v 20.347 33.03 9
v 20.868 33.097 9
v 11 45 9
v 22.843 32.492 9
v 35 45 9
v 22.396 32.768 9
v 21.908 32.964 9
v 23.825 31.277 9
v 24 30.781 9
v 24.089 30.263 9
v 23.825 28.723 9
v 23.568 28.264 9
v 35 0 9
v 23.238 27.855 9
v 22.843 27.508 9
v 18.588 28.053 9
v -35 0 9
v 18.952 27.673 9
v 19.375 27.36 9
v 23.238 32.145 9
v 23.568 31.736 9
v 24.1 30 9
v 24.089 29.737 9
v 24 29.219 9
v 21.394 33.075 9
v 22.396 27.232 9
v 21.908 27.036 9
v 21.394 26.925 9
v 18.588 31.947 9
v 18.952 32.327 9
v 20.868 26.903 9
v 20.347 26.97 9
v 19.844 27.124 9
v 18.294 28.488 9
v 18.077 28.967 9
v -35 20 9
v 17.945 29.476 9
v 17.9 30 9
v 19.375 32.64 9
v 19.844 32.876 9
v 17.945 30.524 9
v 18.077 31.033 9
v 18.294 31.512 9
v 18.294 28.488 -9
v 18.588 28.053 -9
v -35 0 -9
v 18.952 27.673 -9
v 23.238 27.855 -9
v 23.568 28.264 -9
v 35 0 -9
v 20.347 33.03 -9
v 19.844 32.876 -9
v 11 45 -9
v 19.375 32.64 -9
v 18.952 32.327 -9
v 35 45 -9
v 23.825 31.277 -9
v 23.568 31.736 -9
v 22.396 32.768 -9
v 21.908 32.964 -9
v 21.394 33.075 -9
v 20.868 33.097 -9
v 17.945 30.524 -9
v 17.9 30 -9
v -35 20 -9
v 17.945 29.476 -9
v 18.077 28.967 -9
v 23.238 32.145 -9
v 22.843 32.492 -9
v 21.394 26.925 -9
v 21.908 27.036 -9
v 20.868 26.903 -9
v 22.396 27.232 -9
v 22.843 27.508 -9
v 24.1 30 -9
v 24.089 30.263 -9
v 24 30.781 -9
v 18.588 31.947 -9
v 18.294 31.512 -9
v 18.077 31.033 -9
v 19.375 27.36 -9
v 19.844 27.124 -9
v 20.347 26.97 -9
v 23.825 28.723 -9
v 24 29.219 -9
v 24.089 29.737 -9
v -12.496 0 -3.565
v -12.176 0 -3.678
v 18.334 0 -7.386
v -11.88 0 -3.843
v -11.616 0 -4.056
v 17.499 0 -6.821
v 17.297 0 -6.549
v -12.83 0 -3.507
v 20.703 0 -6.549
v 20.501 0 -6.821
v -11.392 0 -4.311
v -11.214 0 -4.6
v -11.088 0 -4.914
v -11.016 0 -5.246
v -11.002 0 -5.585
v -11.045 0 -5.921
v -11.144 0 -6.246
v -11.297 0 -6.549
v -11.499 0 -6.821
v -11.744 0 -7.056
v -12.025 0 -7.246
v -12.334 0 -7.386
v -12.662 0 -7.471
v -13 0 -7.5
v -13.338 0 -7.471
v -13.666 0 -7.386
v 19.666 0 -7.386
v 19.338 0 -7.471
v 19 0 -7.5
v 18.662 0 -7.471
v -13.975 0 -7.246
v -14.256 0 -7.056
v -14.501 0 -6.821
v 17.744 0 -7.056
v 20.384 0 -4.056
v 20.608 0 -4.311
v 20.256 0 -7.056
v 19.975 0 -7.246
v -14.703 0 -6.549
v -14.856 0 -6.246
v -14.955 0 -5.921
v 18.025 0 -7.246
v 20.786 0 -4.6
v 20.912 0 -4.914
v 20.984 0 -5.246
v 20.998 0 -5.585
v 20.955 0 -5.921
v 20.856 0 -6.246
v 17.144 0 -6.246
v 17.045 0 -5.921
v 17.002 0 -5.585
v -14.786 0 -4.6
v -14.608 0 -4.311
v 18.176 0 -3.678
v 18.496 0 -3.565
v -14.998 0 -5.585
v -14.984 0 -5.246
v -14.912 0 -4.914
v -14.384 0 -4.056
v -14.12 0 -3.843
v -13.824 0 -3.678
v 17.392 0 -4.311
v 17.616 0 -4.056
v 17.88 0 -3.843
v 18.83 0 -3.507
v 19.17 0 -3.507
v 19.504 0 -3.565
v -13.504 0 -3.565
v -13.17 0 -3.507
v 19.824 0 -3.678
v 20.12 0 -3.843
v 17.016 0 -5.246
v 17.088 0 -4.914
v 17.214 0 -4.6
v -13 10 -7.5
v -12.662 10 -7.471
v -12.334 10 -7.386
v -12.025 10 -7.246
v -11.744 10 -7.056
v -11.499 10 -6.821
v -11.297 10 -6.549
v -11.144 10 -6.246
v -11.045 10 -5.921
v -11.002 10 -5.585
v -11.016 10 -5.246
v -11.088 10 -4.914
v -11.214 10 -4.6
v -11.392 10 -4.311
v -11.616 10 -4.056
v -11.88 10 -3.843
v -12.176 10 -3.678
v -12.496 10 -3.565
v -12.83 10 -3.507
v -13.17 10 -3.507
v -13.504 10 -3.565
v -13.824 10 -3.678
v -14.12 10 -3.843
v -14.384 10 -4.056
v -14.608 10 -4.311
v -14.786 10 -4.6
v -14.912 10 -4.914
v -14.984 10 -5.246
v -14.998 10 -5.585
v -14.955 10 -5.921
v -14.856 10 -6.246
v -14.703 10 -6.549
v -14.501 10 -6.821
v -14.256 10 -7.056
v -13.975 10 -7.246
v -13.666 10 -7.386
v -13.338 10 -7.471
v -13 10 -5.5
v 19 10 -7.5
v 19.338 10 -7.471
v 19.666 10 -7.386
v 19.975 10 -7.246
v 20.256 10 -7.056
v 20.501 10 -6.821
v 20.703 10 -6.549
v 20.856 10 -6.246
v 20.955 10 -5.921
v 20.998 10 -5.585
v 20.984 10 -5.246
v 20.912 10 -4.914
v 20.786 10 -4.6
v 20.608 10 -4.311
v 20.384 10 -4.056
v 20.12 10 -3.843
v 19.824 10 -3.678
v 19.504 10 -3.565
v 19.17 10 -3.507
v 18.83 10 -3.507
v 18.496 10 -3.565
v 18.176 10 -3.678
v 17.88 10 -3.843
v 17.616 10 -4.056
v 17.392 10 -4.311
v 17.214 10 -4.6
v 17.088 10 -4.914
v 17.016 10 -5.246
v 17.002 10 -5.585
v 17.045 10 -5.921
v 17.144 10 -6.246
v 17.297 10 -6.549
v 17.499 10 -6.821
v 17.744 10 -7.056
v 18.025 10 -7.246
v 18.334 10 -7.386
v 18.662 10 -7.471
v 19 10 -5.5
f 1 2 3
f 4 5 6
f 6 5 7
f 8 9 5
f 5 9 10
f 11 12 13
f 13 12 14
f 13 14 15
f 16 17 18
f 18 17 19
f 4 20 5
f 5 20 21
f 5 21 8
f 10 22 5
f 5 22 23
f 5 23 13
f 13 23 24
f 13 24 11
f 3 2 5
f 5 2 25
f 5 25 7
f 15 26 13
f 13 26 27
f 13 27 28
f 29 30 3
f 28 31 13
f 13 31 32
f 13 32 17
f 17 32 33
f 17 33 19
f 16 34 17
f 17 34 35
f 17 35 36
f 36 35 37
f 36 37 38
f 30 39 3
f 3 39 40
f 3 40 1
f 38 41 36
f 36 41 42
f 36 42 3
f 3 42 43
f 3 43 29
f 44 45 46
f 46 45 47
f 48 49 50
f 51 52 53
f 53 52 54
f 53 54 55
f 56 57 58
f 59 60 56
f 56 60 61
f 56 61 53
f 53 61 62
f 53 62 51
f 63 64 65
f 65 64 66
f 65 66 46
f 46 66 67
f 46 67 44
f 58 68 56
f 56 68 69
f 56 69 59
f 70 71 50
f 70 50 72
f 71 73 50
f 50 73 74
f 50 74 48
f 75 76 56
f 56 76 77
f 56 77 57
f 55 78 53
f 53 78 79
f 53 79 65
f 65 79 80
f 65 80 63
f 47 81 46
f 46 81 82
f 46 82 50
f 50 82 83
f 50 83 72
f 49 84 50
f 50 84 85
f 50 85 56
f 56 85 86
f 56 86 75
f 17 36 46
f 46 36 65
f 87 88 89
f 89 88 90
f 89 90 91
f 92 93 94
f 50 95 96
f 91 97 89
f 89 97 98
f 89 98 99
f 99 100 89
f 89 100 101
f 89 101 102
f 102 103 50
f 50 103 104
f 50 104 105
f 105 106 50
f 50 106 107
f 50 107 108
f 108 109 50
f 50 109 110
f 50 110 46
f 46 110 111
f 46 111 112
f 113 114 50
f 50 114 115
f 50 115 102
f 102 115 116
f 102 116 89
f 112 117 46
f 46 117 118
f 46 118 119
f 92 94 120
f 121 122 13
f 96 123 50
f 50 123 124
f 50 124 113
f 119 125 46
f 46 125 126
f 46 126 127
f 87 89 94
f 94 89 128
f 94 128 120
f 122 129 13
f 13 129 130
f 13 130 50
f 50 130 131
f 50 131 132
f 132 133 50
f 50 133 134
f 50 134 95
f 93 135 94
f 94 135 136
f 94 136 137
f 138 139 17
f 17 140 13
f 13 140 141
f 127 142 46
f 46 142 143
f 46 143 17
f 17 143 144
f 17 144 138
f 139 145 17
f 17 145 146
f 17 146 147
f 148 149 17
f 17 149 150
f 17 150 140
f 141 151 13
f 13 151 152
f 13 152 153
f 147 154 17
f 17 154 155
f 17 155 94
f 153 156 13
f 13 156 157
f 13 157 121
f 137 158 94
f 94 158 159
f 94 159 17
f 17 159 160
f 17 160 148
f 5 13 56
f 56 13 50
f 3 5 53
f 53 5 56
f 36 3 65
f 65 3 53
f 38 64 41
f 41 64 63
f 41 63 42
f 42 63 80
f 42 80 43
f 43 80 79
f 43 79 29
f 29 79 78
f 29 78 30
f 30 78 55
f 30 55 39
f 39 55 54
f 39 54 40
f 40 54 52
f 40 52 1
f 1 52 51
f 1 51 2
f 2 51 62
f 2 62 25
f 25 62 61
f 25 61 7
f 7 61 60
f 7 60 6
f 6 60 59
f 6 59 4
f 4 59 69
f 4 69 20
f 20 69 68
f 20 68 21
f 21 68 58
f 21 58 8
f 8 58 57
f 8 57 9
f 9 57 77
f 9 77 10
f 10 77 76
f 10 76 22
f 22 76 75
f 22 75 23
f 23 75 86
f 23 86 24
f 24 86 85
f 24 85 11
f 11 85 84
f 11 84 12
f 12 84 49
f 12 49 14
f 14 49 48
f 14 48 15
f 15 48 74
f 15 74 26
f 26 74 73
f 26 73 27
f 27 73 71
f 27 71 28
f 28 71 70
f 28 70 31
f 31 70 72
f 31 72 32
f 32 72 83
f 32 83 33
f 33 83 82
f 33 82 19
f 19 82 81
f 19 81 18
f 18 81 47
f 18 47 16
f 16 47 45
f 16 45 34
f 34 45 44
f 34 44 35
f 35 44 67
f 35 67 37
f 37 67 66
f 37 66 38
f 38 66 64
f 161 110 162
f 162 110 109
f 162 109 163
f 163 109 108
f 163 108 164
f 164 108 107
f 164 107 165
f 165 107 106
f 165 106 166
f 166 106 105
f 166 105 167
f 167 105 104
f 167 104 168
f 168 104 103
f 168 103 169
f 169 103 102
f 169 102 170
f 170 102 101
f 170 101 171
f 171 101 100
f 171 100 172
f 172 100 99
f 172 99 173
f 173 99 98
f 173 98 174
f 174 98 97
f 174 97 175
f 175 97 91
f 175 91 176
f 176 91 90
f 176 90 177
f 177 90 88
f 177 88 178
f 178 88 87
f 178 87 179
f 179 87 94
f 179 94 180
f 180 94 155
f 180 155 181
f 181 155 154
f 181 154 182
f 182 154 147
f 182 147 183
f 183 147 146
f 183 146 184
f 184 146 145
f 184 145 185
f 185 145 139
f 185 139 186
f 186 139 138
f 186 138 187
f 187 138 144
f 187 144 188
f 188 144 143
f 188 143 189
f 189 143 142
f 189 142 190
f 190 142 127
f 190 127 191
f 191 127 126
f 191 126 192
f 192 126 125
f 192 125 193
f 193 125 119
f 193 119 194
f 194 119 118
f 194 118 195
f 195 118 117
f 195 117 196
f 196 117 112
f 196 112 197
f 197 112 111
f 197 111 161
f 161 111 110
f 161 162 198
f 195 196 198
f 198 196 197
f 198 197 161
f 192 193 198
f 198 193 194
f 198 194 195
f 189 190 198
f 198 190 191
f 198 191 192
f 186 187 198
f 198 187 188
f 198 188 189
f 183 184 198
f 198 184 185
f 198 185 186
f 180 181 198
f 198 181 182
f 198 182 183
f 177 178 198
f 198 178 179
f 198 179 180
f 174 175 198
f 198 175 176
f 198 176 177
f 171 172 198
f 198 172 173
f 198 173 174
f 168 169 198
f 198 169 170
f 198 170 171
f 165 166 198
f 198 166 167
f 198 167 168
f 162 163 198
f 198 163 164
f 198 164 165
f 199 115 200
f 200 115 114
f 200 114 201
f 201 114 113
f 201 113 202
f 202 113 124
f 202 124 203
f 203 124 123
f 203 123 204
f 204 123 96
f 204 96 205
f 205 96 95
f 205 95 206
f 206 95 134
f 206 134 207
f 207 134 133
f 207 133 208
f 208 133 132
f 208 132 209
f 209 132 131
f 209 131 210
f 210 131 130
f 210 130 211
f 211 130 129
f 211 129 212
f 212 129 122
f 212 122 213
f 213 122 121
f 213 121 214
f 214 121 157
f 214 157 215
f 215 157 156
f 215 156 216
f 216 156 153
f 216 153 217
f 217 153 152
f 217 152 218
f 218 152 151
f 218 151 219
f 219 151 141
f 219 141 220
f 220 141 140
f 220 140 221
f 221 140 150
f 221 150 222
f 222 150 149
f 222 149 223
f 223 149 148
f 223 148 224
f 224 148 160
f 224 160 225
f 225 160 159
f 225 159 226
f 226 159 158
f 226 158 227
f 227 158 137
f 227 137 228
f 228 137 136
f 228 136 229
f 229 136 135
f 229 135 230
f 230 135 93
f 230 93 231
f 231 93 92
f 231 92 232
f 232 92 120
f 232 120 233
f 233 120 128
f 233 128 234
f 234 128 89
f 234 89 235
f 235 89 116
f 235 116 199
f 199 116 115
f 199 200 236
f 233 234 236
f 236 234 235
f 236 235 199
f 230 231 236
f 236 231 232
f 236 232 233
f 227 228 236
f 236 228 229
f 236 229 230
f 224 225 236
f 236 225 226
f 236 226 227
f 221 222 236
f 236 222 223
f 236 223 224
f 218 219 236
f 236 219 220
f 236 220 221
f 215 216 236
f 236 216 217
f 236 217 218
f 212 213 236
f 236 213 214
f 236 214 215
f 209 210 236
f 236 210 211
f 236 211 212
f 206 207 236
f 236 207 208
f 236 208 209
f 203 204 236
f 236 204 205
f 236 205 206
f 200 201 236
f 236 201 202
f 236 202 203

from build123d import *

# Parameters (mm, degrees)
SKETCH1_R           = 3.1
BOSS_EXTRUDE1_DEPTH = 9
SKETCH3_R           = 2
CUT_EXTRUDE1_DEPTH  = 10


with BuildPart() as part:
    # Sketch1 → Boss-Extrude1 (new, symmetric)
    with BuildSketch(Plane.XY):
        Polygon((-35, 0), (35, 0), (35, 45), (11, 45), (-35, 20), align=None)
        with Locations((21, 30)):
            Circle(SKETCH1_R, mode=Mode.SUBTRACT)
    extrude(amount=BOSS_EXTRUDE1_DEPTH, both=True)

    # Sketch3 → Cut-Extrude1 (cut)
    with BuildSketch(Plane.XZ):
        with Locations(Location((19, -5.5, 0), (0, 0, 270))):
            Circle(SKETCH3_R)
        with Locations(Location((-13, -5.5, 0), (0, 0, 270))):
            Circle(SKETCH3_R)
    extrude(amount=-CUT_EXTRUDE1_DEPTH, mode=Mode.SUBTRACT)


solid = part.part
